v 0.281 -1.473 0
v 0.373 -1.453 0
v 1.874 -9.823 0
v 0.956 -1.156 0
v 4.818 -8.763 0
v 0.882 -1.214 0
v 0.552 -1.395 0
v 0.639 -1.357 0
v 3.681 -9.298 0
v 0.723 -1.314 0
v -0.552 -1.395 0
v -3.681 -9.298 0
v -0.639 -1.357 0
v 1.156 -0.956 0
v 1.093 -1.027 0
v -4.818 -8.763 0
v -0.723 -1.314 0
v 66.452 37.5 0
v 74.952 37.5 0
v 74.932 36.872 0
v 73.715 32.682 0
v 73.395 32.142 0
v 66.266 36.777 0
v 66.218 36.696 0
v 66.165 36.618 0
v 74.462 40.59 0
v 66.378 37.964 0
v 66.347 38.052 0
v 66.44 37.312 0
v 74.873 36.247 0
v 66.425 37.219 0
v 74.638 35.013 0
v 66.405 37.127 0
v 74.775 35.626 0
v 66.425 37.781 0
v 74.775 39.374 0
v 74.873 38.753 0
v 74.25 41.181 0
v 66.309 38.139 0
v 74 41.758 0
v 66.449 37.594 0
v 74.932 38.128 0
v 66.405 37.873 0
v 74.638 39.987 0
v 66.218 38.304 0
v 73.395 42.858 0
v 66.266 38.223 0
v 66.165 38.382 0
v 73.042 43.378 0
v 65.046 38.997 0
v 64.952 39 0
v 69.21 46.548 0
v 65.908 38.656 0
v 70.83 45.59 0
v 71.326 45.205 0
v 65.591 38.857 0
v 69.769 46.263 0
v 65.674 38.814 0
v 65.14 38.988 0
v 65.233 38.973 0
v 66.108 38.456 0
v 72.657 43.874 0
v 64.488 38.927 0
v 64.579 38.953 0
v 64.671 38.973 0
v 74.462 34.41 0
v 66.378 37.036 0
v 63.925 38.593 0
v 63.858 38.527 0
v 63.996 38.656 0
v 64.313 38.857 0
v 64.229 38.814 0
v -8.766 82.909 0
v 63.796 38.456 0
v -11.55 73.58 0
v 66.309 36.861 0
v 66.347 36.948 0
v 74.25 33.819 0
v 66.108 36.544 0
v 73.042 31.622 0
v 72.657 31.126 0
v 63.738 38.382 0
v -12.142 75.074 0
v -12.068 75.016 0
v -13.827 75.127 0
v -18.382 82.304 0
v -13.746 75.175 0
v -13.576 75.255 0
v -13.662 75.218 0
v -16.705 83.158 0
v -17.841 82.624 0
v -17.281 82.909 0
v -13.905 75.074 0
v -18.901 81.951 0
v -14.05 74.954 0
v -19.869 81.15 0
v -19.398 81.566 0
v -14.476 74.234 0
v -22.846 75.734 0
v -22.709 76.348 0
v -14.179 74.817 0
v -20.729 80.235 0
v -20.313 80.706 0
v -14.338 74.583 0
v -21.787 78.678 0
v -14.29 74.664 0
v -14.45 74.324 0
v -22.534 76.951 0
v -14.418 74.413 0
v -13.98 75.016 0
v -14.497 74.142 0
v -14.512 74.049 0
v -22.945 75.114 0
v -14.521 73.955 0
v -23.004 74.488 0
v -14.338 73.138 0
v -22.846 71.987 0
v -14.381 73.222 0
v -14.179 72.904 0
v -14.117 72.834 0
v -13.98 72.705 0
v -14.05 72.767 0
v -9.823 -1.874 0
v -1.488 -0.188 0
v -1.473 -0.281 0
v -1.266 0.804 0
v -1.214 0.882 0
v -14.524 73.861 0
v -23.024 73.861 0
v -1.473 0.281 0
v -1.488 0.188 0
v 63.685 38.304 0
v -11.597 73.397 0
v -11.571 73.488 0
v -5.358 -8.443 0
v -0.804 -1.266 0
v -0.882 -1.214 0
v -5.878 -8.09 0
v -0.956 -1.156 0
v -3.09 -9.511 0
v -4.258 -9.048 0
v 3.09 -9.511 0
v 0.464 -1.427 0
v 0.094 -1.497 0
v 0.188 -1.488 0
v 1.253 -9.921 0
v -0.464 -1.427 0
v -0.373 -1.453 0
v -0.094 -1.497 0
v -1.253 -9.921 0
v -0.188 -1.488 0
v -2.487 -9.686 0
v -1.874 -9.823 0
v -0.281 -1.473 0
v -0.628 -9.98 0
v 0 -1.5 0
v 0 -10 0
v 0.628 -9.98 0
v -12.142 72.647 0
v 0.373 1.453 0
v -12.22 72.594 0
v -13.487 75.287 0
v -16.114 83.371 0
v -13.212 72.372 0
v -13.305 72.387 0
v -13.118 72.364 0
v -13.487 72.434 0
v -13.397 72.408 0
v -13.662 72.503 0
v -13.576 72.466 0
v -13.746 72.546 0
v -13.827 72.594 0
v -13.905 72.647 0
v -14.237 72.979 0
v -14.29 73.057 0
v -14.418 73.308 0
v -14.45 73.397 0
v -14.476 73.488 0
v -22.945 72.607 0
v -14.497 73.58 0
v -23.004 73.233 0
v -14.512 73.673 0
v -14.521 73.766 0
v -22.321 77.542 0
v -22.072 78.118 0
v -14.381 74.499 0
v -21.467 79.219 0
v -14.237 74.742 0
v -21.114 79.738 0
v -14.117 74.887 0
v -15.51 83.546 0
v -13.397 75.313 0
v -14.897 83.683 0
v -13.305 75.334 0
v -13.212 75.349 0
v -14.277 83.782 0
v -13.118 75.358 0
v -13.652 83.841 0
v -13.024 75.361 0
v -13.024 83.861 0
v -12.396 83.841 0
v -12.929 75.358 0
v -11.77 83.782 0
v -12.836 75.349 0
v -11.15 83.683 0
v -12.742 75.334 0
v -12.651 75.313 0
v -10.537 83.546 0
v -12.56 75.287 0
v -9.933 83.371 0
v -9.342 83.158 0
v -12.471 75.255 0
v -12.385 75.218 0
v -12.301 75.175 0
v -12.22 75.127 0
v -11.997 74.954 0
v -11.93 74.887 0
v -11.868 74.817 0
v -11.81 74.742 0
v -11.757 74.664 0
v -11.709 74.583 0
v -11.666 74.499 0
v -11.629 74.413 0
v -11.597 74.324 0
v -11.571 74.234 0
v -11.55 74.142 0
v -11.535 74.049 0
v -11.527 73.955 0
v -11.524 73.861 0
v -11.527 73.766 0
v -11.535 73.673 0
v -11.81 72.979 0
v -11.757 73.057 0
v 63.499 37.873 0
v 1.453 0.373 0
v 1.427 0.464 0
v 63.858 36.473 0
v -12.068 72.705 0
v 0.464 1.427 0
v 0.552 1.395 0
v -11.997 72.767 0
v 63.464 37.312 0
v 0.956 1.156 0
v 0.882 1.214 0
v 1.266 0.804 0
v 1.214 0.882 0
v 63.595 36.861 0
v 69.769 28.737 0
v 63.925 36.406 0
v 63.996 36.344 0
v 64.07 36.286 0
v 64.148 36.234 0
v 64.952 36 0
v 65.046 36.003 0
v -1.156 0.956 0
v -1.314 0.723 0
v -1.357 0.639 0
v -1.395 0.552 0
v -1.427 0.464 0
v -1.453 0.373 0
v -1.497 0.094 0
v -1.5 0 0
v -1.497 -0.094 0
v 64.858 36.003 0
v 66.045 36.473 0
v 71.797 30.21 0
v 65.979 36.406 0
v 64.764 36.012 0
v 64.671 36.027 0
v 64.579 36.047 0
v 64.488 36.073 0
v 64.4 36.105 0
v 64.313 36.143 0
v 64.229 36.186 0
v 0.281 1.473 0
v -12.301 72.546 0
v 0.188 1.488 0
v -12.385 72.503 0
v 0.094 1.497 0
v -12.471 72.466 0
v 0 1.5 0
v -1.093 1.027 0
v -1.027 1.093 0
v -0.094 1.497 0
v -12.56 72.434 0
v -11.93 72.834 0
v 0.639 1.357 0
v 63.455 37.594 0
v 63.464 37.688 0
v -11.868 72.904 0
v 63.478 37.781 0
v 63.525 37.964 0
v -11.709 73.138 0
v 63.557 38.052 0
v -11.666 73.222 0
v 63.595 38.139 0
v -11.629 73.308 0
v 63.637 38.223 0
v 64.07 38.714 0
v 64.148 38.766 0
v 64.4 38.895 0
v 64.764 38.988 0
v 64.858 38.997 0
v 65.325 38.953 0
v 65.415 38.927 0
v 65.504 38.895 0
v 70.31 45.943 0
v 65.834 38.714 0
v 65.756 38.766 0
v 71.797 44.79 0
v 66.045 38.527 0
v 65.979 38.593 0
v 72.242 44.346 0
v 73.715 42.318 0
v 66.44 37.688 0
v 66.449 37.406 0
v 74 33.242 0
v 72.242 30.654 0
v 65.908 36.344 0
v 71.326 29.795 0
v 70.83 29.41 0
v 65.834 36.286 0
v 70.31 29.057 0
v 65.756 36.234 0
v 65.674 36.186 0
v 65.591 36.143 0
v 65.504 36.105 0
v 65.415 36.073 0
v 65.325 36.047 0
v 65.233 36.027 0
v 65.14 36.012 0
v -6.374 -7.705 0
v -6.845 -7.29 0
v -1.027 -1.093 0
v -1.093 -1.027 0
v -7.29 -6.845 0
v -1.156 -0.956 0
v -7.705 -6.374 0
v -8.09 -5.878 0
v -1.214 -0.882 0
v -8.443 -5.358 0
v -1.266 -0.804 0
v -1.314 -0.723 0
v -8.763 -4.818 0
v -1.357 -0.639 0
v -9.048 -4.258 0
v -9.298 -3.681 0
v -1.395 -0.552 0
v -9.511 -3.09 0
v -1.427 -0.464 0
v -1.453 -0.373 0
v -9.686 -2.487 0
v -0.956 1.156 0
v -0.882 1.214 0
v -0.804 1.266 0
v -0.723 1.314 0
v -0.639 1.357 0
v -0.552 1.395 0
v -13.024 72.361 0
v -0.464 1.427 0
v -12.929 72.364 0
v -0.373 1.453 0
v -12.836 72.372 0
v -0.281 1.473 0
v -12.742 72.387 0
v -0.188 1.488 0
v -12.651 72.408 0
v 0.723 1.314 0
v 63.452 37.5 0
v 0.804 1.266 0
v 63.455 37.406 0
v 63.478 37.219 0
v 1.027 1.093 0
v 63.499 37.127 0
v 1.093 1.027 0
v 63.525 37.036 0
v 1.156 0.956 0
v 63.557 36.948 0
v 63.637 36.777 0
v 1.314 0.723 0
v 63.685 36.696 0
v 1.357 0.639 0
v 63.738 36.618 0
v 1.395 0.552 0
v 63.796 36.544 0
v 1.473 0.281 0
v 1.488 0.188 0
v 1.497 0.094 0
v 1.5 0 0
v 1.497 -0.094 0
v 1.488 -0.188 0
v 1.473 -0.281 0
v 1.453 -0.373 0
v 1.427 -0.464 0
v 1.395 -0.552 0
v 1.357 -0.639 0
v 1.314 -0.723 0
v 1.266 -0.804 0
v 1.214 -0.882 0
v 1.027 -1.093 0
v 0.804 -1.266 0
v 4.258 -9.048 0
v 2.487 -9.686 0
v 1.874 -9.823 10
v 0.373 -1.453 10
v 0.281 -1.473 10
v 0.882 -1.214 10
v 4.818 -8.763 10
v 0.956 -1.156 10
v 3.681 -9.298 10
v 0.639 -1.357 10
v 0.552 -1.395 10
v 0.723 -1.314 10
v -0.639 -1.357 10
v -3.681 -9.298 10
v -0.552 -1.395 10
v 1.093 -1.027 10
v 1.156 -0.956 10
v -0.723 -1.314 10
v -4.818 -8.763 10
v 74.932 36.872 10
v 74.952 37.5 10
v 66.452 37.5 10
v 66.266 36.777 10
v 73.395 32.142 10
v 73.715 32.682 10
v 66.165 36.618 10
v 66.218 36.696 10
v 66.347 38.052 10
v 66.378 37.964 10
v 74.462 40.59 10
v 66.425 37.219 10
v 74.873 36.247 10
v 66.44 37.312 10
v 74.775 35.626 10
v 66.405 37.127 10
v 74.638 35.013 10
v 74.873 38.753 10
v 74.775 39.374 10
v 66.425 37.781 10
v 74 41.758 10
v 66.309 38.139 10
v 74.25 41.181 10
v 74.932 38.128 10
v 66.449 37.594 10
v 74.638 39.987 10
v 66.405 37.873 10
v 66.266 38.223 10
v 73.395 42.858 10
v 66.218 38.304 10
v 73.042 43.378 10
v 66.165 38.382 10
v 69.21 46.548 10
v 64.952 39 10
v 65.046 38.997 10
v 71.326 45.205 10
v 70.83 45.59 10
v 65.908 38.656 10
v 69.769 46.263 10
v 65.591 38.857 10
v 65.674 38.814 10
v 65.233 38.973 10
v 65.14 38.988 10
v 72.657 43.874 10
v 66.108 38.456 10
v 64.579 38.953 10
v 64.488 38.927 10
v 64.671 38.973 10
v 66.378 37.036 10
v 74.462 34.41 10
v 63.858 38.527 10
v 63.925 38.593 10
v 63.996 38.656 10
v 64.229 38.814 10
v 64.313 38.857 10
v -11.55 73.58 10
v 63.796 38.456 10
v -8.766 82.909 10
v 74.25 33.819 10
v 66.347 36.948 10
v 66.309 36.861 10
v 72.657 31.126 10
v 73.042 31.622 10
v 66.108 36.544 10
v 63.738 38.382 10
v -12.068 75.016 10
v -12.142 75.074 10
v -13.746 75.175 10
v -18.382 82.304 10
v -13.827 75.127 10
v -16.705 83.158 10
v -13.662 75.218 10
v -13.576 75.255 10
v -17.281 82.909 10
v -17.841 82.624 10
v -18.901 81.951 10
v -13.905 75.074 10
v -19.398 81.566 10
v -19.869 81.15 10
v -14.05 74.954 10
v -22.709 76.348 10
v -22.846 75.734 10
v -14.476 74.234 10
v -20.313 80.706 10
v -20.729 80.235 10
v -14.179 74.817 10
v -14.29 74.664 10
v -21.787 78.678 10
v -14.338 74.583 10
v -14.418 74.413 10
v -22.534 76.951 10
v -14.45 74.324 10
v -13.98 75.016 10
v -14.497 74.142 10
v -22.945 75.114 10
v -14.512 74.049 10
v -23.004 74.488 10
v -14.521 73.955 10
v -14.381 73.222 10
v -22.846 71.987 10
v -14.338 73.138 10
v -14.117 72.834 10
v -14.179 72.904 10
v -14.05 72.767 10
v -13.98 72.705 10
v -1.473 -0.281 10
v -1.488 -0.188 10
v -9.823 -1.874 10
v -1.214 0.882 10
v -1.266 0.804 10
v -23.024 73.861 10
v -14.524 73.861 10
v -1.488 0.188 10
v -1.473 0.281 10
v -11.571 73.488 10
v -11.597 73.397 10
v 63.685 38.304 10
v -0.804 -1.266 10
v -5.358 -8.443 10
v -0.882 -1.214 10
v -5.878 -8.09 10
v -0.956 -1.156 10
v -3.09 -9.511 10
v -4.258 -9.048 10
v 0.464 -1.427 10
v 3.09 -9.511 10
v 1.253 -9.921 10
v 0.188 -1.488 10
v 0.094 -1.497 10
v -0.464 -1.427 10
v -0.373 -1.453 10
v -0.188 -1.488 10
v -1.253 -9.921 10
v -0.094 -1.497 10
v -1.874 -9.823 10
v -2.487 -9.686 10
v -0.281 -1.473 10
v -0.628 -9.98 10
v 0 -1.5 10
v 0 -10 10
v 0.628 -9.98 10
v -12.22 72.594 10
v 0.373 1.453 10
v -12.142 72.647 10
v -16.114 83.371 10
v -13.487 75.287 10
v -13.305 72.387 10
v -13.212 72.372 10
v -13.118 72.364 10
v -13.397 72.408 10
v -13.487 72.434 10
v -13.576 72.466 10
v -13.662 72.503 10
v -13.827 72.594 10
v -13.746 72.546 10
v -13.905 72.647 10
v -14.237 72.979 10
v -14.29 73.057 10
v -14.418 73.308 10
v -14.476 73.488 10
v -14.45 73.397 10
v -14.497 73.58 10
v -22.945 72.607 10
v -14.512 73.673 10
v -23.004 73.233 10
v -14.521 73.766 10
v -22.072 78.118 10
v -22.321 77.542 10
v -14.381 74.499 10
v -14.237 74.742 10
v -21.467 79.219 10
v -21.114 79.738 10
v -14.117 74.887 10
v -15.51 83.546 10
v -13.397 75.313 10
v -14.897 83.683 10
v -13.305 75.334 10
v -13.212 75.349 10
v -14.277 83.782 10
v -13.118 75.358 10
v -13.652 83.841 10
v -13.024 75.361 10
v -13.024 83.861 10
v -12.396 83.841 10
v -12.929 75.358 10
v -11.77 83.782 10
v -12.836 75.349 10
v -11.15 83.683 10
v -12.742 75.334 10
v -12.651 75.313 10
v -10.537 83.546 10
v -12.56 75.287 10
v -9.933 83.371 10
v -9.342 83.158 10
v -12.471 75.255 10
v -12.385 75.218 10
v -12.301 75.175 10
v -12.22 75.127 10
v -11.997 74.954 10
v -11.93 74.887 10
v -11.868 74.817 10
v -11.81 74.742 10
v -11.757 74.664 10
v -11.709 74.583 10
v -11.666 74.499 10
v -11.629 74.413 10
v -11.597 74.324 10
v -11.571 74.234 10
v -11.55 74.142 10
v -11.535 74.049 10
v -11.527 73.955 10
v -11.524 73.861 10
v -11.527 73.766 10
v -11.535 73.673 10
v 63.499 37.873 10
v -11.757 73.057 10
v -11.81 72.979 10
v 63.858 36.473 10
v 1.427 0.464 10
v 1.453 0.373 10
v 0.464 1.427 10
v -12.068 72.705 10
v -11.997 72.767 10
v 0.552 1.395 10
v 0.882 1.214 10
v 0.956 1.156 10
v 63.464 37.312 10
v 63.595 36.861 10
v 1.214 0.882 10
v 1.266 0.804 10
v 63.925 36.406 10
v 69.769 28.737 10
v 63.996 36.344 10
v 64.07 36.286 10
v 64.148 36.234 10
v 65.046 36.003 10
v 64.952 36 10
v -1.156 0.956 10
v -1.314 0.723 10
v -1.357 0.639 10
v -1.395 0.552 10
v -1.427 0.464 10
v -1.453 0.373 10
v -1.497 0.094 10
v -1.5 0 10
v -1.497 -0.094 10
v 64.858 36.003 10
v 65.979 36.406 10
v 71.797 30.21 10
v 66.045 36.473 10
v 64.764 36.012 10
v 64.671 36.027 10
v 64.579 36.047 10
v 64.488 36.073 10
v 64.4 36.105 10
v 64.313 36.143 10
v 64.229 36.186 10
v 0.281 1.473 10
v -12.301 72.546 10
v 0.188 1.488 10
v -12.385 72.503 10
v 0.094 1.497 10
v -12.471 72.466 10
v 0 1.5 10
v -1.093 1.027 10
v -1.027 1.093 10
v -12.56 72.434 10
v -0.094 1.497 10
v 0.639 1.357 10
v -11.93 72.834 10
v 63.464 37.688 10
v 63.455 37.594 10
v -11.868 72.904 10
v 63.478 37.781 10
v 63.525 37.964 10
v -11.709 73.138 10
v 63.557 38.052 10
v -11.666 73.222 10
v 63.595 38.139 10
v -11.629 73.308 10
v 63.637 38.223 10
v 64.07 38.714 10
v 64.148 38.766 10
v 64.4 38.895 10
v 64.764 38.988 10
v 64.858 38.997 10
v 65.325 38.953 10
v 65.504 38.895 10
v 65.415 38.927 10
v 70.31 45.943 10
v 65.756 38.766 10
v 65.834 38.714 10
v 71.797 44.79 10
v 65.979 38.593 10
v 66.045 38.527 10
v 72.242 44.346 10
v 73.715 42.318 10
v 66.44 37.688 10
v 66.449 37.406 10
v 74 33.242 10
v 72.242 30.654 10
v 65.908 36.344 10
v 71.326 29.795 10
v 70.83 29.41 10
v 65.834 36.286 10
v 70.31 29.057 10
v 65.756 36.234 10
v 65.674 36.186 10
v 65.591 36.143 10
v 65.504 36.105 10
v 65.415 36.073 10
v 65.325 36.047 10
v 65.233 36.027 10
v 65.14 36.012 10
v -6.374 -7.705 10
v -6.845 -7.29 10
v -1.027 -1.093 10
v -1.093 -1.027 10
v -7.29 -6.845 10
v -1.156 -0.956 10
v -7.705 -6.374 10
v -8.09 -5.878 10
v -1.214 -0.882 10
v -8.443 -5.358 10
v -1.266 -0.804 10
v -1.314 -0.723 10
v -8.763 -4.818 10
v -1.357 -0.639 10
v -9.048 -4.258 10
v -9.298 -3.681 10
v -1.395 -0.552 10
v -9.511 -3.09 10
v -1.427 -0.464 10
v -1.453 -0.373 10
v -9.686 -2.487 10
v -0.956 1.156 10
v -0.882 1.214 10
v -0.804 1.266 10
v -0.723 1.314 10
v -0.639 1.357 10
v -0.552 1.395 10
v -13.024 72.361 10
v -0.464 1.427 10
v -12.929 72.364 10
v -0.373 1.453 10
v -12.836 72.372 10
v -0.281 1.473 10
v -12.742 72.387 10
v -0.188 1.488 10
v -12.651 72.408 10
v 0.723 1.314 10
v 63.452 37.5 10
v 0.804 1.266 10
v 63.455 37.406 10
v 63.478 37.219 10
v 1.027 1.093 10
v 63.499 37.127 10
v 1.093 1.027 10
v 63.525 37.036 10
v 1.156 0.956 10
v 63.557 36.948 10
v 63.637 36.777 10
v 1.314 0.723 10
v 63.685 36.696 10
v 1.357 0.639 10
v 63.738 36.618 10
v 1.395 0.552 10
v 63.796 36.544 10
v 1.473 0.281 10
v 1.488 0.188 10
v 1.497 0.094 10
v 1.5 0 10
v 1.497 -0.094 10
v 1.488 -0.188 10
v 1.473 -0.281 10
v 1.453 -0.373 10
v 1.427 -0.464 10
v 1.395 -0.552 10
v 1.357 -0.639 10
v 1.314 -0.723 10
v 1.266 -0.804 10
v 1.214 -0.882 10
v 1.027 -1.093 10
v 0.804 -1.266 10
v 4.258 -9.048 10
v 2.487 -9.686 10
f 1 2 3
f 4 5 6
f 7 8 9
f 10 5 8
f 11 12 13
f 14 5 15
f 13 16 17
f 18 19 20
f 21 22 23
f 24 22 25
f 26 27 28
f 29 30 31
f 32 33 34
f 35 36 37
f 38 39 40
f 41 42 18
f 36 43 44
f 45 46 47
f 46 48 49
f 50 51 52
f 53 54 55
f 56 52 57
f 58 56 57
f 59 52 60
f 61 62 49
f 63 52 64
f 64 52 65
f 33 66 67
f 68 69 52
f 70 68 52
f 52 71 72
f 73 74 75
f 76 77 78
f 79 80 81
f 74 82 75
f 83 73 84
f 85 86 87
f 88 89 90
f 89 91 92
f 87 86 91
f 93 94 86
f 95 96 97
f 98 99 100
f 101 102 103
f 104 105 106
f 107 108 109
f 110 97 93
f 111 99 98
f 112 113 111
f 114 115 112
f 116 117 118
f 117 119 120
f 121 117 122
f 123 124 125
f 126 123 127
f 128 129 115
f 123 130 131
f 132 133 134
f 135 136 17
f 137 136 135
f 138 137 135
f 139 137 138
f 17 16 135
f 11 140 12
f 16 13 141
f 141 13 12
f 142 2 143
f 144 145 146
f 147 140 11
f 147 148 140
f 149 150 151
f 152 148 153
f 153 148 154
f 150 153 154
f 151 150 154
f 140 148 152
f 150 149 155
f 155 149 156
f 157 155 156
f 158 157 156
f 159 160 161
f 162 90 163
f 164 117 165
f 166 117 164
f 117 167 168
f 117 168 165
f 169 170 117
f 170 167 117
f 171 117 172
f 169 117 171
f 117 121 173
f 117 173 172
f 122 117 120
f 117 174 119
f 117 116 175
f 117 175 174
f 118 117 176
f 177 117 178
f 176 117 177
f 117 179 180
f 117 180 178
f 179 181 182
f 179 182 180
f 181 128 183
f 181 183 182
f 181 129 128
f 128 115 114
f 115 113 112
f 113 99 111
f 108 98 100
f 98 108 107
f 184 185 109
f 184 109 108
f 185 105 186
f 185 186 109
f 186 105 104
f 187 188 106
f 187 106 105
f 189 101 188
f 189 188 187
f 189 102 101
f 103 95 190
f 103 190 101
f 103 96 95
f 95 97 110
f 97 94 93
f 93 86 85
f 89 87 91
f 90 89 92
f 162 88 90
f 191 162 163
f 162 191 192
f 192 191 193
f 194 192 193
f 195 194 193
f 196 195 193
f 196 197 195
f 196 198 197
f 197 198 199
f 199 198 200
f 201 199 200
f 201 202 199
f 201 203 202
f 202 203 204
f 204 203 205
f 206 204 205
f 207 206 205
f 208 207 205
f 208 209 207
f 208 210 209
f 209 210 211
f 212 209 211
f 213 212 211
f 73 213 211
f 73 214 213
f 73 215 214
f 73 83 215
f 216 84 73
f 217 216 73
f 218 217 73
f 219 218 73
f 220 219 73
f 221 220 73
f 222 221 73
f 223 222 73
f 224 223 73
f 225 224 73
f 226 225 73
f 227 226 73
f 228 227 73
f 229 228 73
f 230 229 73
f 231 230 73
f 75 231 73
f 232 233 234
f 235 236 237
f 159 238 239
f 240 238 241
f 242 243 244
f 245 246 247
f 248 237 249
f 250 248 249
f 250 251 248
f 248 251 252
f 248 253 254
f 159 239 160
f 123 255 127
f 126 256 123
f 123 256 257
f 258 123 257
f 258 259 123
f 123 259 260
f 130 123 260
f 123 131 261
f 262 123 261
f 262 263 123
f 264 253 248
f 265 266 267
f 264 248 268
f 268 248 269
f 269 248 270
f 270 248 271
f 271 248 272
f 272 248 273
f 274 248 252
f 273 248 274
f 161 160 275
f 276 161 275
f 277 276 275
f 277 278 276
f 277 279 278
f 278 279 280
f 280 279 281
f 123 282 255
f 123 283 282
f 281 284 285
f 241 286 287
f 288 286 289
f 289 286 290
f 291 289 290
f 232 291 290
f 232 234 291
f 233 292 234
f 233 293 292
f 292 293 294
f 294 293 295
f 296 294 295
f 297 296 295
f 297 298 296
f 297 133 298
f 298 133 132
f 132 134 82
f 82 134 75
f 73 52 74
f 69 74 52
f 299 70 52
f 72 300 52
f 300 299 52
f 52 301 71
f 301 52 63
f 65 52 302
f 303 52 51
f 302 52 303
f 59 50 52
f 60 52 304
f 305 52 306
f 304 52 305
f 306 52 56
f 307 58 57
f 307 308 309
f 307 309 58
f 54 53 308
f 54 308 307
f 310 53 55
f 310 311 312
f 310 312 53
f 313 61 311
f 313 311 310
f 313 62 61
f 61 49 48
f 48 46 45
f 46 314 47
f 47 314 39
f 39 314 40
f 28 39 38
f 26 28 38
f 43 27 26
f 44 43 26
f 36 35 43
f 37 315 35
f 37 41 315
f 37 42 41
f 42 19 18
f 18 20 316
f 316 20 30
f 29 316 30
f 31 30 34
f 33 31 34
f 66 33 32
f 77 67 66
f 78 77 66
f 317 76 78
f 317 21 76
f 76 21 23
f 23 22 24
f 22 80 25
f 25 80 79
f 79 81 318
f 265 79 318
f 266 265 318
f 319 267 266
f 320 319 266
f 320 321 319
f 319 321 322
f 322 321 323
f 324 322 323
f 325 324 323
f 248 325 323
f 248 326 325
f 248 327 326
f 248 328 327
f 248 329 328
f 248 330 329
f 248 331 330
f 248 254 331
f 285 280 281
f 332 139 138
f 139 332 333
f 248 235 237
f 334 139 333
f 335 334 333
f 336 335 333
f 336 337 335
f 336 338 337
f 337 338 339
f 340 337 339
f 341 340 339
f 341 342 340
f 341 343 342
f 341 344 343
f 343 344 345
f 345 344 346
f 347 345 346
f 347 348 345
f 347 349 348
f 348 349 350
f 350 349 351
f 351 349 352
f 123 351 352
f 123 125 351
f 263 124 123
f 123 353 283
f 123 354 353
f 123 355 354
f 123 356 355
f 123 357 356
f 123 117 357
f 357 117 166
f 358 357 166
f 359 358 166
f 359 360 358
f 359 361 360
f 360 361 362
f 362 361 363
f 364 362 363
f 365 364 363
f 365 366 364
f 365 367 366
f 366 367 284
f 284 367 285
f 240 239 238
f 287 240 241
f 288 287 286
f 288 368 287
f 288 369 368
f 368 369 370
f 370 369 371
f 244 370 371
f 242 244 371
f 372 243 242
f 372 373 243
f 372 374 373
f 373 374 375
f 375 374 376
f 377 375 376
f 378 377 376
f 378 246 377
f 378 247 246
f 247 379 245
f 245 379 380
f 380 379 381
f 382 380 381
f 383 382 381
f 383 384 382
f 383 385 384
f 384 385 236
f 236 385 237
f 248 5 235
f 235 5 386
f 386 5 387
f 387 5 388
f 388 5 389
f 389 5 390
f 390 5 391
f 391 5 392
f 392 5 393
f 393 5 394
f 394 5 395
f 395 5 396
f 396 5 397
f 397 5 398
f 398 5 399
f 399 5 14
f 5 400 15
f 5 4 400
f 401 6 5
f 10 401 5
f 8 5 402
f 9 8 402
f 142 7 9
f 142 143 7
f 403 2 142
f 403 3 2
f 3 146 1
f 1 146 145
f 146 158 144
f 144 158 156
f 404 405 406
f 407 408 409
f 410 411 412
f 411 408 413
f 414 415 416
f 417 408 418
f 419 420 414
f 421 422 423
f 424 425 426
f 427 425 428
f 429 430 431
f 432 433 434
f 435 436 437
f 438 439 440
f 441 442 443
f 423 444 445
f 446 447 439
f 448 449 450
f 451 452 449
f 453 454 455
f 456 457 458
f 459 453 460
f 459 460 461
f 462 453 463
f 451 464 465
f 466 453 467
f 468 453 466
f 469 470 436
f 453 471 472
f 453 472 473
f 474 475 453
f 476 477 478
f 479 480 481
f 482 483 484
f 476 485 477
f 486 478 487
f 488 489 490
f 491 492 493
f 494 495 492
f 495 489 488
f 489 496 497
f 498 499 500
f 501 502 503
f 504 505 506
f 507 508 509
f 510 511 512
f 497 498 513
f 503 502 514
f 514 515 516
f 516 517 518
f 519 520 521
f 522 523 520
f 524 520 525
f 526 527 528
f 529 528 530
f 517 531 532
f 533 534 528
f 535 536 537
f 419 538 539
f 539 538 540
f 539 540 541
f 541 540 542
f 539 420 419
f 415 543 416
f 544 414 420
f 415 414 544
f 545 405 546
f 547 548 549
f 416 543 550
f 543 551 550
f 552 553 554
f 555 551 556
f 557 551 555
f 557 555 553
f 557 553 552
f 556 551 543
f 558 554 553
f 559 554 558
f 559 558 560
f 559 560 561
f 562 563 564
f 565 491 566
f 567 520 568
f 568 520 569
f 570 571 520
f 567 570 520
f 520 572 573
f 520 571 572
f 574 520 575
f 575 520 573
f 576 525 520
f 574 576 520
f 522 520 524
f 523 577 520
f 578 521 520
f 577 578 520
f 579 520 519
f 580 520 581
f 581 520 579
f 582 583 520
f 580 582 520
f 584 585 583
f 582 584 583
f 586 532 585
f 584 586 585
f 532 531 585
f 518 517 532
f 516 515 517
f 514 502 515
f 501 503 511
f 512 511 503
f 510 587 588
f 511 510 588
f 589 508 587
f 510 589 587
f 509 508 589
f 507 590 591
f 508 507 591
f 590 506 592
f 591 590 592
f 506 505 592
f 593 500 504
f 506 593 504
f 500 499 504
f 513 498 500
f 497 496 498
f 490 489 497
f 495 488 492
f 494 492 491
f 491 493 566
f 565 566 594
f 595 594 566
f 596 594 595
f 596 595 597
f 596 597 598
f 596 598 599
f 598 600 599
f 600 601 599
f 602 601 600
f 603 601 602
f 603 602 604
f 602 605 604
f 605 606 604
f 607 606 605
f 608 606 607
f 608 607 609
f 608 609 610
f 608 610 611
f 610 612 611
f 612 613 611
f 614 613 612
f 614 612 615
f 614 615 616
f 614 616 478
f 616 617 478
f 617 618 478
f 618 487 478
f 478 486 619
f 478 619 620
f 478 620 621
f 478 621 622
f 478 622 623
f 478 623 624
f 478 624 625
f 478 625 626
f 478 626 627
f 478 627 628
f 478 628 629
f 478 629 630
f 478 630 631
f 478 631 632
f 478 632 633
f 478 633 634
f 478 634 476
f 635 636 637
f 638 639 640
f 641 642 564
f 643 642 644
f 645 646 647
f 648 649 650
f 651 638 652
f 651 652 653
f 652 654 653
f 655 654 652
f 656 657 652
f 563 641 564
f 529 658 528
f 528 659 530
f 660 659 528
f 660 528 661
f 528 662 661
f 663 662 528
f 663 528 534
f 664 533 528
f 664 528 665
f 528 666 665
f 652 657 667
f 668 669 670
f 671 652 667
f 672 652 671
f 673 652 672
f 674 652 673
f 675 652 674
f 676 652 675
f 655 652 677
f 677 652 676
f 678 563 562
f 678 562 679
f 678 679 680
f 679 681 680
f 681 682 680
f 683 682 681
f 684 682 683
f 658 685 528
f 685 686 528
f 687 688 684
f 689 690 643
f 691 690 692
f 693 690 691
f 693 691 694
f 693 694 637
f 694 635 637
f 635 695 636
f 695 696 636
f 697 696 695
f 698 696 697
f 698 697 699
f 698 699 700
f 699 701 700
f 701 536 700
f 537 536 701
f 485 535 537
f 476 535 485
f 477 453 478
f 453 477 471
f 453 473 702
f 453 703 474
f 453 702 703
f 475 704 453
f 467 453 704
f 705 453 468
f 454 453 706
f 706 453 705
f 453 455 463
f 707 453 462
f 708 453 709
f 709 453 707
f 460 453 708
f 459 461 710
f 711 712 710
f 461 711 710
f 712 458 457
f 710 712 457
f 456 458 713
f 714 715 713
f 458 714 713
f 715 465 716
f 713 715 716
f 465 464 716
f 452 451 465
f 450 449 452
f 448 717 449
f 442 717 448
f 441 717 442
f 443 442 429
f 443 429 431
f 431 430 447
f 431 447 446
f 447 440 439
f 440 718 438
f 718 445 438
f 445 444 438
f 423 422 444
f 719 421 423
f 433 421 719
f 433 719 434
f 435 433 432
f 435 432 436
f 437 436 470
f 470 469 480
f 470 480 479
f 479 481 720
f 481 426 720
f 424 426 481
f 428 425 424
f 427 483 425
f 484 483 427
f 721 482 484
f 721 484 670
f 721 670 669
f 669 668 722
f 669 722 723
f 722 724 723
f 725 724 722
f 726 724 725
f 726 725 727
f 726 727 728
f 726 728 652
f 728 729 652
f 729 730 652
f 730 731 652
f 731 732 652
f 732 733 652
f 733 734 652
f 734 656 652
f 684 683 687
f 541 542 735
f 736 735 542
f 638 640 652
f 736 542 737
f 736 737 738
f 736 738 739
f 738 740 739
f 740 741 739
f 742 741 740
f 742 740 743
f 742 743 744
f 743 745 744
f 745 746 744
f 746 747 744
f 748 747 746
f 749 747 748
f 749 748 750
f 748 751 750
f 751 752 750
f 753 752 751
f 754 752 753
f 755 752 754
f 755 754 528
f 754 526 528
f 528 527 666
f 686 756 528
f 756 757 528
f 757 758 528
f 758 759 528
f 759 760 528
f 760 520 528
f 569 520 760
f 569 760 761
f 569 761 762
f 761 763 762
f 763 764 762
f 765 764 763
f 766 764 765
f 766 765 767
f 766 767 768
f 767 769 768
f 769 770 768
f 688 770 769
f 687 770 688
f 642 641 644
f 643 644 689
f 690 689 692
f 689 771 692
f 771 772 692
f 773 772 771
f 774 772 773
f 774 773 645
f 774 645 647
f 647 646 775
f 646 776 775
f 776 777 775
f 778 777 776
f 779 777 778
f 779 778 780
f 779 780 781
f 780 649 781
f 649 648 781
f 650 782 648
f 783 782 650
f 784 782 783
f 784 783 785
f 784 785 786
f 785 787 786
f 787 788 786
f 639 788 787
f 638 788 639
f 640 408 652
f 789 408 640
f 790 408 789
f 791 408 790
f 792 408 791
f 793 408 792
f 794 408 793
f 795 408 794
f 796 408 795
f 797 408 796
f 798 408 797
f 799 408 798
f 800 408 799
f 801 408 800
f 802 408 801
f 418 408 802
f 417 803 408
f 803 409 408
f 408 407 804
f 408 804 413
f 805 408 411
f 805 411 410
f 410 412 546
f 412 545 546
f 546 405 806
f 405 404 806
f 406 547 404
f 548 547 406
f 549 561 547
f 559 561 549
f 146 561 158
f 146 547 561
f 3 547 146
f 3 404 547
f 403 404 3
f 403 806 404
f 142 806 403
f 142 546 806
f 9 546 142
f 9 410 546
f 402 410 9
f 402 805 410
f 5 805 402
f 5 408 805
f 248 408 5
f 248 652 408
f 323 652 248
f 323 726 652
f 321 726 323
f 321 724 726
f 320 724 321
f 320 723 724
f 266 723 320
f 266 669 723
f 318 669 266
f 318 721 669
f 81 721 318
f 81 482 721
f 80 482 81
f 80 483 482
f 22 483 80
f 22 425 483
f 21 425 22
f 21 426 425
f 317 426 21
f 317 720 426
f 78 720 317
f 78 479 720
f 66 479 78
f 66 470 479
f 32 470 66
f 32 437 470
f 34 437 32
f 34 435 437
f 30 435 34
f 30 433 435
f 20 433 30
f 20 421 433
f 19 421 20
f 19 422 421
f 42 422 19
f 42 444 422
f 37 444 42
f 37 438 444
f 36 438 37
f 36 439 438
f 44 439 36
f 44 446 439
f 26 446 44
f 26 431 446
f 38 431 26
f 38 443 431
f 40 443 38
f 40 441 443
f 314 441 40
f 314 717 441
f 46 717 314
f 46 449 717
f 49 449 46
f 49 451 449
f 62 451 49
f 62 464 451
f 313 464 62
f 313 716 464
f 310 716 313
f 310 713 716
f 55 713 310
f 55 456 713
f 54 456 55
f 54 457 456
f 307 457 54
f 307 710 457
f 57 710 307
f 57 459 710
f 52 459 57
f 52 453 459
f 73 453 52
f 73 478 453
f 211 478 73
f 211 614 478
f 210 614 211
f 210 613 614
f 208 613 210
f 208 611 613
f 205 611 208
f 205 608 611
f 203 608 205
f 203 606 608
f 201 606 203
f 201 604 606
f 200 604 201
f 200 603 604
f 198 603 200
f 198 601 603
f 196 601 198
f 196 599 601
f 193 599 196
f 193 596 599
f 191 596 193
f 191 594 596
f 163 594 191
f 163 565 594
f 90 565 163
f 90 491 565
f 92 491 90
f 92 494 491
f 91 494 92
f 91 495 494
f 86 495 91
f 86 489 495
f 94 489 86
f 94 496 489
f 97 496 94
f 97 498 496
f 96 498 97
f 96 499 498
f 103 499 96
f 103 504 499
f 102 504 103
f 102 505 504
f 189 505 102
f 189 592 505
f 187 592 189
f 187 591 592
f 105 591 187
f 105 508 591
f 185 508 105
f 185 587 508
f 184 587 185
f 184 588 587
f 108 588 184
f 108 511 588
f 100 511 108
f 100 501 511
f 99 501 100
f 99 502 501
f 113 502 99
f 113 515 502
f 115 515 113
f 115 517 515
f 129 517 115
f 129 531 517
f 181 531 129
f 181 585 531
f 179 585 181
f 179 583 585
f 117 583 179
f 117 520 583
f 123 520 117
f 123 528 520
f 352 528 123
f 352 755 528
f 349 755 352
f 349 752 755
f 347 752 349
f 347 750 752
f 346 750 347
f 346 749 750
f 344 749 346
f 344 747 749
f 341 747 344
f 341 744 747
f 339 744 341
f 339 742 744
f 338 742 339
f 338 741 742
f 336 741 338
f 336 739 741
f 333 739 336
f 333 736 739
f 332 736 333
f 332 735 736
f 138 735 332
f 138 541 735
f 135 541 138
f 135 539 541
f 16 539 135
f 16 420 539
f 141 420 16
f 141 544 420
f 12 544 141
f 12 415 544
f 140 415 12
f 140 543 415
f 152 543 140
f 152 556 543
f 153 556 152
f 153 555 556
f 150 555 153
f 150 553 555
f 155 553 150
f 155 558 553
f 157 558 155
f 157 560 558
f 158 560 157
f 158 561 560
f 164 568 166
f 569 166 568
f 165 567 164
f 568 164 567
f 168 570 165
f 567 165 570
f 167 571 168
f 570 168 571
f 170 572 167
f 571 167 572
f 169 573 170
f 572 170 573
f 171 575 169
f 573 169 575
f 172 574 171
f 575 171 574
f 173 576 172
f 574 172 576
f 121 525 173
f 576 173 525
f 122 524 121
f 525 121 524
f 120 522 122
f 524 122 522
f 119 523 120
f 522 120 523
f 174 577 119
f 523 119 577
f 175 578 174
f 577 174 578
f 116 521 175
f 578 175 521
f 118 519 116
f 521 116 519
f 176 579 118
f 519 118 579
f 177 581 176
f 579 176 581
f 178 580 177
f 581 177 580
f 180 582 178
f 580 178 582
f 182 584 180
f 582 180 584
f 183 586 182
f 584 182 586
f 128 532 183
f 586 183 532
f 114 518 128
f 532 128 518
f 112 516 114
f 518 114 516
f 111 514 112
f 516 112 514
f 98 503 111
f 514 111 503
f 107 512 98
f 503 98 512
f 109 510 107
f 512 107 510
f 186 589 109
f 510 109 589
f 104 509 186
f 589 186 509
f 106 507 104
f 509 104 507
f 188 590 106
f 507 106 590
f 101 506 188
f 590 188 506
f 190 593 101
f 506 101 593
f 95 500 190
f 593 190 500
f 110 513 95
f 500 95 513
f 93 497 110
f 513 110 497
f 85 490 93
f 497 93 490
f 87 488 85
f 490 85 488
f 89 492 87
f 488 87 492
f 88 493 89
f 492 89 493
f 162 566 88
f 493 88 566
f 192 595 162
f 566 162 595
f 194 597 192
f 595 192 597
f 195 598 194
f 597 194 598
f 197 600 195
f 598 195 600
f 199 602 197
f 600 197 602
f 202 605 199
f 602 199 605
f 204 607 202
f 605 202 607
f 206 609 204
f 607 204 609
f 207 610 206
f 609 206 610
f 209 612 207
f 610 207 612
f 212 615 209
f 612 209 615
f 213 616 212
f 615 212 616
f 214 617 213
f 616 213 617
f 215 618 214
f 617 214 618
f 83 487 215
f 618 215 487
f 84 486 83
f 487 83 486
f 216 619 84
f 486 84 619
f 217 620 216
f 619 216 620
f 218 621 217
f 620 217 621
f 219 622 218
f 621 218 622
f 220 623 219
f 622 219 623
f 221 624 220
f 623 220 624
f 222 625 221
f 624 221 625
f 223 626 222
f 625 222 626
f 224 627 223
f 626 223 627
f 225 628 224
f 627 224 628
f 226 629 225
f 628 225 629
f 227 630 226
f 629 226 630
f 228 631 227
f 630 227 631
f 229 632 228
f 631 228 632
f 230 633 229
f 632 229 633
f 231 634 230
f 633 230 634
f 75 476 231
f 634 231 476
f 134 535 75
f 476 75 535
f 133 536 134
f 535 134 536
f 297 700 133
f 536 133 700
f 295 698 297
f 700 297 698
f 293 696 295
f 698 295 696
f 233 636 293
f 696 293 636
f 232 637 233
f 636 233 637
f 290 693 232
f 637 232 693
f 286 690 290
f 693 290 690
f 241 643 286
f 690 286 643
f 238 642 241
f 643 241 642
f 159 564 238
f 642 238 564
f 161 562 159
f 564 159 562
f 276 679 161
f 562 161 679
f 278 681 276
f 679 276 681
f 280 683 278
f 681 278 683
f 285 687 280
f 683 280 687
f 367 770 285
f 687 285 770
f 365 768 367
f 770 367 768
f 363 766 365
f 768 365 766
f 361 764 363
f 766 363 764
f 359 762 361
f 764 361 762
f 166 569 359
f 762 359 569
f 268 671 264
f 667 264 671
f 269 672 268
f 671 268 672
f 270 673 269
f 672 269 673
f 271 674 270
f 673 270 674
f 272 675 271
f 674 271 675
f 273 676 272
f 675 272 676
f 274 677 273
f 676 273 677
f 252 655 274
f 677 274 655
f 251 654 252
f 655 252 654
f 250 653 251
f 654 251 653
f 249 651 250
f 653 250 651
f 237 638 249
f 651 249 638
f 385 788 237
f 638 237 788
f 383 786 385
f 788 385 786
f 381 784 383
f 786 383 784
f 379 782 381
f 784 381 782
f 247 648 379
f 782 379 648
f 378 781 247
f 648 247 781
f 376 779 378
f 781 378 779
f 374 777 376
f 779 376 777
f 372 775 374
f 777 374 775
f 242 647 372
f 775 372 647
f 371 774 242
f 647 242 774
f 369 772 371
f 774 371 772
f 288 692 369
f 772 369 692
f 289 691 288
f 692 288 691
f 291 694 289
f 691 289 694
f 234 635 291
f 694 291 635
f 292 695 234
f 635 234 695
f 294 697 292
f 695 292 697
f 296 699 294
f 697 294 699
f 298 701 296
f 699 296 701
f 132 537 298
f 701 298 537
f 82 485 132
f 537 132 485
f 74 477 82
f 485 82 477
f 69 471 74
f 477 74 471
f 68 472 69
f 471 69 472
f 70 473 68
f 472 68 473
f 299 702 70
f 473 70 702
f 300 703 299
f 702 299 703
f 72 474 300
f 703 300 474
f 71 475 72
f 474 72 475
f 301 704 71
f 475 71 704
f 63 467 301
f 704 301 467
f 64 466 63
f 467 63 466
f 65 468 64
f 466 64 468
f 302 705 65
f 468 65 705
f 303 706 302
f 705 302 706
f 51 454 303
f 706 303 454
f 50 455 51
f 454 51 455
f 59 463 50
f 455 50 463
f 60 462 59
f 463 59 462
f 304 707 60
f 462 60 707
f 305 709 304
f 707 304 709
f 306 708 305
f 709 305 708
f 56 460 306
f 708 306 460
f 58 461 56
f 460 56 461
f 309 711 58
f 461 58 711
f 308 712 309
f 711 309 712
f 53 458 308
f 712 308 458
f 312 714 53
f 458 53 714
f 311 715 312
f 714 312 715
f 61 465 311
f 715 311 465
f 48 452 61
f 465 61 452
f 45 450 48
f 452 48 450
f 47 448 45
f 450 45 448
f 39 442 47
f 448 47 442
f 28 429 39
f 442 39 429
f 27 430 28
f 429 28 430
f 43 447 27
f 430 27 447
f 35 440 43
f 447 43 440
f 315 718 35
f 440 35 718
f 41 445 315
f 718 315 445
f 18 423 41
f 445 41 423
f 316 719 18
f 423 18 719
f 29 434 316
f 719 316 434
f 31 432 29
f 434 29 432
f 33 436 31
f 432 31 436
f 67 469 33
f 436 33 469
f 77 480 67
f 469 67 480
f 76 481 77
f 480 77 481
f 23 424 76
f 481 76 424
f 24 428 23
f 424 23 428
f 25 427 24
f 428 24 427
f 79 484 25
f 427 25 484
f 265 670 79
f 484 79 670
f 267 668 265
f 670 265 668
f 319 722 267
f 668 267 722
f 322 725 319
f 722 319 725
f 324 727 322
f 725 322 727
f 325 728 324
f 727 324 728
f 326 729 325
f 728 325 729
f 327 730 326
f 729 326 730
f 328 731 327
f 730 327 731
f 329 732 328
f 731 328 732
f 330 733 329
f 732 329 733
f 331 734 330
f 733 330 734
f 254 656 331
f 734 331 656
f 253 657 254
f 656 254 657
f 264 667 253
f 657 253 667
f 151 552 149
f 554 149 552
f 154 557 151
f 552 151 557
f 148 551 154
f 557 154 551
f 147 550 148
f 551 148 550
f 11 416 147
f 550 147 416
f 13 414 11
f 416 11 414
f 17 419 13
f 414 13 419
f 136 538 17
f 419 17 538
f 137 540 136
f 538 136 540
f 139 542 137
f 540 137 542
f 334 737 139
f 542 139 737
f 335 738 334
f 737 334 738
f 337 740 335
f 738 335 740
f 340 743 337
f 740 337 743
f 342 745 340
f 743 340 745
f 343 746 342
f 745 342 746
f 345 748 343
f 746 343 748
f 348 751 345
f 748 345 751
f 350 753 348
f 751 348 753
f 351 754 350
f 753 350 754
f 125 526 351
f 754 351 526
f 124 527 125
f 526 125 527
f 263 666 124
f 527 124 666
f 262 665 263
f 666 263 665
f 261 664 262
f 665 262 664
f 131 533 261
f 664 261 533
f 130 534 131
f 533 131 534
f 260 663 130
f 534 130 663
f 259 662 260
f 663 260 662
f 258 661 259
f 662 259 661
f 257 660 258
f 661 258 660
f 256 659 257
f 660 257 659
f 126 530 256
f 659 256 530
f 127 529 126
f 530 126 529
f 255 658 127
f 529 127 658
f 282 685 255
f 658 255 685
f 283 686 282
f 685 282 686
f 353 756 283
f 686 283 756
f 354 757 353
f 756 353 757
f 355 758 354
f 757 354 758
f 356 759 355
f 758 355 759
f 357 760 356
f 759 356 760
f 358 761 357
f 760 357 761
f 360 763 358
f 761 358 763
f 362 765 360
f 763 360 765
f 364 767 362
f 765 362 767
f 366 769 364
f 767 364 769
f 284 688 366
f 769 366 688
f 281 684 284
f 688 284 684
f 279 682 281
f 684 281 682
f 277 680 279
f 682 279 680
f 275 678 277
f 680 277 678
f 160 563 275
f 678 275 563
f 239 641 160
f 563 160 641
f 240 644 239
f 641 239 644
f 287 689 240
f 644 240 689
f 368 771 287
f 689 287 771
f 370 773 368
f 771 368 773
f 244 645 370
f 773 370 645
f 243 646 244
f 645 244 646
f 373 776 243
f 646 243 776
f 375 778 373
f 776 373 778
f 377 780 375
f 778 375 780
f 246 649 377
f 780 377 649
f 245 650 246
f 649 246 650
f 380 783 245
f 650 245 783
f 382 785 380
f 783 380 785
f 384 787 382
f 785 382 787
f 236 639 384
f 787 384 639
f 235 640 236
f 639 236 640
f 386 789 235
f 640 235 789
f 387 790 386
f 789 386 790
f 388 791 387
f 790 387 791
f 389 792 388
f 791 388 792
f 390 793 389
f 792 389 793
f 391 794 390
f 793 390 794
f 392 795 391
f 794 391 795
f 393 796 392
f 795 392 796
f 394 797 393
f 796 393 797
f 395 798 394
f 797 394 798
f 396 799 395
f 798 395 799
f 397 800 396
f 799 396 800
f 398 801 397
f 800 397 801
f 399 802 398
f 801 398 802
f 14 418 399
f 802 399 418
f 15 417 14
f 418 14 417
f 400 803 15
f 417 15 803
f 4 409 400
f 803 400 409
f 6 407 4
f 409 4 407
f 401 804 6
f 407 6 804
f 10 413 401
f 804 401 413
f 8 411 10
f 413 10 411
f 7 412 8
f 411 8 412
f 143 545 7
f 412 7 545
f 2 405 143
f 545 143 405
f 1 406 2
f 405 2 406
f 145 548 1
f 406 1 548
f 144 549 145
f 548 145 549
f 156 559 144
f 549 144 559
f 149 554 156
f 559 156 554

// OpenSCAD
// file: constant.scad
DEBUG = false;

$fn = DEBUG ? 0 : 100;

SEGMENT_WIDTH = 20;
BOLT_DIAMETER= 3;

SHORT = 75;
LONG = 175;
CLAW_WIDTH = 25;
THICKNESS = 10;

// Angles in degree
BOTTOM_SLOPE = 30;
TOP_SLOPE = 10;

CENTER = 50;

function getTopCoords(size, angle) =
	let(computedAngle = 90 + angle) [
		cos(computedAngle) * size,
		sin(computedAngle) * size
	];

function getBottomCoords(size, angle) = [
    cos(angle) * size,
    sin(angle) * size
];
// main file
include <constant.scad>

module topHinge(sizeH, angleH, sizeV, angleV, thickness=1) {
    coords = [
        // Bottom
        [ 0, 0 ],    
        // Center
        [
            cos(angleH) * sizeH,
            sin(angleH) * sizeH,
        ],
        // Top
        getTopCoords(sizeV, angleV)
    ];
    
    rotate([90, 0, 0])
    linear_extrude(thickness)
    difference() {
        minkowski() {
            polygon(coords);
            circle(d=SEGMENT_WIDTH);
        };
        for (i=[0:2])
            translate([coords[i].x, coords[i].y, 0])
                circle(d=BOLT_DIAMETER);
    }
}

rotate([-90, 0, 0])
topHinge(
    SHORT, BOTTOM_SLOPE, 
    SHORT, TOP_SLOPE, 
    thickness=THICKNESS);
